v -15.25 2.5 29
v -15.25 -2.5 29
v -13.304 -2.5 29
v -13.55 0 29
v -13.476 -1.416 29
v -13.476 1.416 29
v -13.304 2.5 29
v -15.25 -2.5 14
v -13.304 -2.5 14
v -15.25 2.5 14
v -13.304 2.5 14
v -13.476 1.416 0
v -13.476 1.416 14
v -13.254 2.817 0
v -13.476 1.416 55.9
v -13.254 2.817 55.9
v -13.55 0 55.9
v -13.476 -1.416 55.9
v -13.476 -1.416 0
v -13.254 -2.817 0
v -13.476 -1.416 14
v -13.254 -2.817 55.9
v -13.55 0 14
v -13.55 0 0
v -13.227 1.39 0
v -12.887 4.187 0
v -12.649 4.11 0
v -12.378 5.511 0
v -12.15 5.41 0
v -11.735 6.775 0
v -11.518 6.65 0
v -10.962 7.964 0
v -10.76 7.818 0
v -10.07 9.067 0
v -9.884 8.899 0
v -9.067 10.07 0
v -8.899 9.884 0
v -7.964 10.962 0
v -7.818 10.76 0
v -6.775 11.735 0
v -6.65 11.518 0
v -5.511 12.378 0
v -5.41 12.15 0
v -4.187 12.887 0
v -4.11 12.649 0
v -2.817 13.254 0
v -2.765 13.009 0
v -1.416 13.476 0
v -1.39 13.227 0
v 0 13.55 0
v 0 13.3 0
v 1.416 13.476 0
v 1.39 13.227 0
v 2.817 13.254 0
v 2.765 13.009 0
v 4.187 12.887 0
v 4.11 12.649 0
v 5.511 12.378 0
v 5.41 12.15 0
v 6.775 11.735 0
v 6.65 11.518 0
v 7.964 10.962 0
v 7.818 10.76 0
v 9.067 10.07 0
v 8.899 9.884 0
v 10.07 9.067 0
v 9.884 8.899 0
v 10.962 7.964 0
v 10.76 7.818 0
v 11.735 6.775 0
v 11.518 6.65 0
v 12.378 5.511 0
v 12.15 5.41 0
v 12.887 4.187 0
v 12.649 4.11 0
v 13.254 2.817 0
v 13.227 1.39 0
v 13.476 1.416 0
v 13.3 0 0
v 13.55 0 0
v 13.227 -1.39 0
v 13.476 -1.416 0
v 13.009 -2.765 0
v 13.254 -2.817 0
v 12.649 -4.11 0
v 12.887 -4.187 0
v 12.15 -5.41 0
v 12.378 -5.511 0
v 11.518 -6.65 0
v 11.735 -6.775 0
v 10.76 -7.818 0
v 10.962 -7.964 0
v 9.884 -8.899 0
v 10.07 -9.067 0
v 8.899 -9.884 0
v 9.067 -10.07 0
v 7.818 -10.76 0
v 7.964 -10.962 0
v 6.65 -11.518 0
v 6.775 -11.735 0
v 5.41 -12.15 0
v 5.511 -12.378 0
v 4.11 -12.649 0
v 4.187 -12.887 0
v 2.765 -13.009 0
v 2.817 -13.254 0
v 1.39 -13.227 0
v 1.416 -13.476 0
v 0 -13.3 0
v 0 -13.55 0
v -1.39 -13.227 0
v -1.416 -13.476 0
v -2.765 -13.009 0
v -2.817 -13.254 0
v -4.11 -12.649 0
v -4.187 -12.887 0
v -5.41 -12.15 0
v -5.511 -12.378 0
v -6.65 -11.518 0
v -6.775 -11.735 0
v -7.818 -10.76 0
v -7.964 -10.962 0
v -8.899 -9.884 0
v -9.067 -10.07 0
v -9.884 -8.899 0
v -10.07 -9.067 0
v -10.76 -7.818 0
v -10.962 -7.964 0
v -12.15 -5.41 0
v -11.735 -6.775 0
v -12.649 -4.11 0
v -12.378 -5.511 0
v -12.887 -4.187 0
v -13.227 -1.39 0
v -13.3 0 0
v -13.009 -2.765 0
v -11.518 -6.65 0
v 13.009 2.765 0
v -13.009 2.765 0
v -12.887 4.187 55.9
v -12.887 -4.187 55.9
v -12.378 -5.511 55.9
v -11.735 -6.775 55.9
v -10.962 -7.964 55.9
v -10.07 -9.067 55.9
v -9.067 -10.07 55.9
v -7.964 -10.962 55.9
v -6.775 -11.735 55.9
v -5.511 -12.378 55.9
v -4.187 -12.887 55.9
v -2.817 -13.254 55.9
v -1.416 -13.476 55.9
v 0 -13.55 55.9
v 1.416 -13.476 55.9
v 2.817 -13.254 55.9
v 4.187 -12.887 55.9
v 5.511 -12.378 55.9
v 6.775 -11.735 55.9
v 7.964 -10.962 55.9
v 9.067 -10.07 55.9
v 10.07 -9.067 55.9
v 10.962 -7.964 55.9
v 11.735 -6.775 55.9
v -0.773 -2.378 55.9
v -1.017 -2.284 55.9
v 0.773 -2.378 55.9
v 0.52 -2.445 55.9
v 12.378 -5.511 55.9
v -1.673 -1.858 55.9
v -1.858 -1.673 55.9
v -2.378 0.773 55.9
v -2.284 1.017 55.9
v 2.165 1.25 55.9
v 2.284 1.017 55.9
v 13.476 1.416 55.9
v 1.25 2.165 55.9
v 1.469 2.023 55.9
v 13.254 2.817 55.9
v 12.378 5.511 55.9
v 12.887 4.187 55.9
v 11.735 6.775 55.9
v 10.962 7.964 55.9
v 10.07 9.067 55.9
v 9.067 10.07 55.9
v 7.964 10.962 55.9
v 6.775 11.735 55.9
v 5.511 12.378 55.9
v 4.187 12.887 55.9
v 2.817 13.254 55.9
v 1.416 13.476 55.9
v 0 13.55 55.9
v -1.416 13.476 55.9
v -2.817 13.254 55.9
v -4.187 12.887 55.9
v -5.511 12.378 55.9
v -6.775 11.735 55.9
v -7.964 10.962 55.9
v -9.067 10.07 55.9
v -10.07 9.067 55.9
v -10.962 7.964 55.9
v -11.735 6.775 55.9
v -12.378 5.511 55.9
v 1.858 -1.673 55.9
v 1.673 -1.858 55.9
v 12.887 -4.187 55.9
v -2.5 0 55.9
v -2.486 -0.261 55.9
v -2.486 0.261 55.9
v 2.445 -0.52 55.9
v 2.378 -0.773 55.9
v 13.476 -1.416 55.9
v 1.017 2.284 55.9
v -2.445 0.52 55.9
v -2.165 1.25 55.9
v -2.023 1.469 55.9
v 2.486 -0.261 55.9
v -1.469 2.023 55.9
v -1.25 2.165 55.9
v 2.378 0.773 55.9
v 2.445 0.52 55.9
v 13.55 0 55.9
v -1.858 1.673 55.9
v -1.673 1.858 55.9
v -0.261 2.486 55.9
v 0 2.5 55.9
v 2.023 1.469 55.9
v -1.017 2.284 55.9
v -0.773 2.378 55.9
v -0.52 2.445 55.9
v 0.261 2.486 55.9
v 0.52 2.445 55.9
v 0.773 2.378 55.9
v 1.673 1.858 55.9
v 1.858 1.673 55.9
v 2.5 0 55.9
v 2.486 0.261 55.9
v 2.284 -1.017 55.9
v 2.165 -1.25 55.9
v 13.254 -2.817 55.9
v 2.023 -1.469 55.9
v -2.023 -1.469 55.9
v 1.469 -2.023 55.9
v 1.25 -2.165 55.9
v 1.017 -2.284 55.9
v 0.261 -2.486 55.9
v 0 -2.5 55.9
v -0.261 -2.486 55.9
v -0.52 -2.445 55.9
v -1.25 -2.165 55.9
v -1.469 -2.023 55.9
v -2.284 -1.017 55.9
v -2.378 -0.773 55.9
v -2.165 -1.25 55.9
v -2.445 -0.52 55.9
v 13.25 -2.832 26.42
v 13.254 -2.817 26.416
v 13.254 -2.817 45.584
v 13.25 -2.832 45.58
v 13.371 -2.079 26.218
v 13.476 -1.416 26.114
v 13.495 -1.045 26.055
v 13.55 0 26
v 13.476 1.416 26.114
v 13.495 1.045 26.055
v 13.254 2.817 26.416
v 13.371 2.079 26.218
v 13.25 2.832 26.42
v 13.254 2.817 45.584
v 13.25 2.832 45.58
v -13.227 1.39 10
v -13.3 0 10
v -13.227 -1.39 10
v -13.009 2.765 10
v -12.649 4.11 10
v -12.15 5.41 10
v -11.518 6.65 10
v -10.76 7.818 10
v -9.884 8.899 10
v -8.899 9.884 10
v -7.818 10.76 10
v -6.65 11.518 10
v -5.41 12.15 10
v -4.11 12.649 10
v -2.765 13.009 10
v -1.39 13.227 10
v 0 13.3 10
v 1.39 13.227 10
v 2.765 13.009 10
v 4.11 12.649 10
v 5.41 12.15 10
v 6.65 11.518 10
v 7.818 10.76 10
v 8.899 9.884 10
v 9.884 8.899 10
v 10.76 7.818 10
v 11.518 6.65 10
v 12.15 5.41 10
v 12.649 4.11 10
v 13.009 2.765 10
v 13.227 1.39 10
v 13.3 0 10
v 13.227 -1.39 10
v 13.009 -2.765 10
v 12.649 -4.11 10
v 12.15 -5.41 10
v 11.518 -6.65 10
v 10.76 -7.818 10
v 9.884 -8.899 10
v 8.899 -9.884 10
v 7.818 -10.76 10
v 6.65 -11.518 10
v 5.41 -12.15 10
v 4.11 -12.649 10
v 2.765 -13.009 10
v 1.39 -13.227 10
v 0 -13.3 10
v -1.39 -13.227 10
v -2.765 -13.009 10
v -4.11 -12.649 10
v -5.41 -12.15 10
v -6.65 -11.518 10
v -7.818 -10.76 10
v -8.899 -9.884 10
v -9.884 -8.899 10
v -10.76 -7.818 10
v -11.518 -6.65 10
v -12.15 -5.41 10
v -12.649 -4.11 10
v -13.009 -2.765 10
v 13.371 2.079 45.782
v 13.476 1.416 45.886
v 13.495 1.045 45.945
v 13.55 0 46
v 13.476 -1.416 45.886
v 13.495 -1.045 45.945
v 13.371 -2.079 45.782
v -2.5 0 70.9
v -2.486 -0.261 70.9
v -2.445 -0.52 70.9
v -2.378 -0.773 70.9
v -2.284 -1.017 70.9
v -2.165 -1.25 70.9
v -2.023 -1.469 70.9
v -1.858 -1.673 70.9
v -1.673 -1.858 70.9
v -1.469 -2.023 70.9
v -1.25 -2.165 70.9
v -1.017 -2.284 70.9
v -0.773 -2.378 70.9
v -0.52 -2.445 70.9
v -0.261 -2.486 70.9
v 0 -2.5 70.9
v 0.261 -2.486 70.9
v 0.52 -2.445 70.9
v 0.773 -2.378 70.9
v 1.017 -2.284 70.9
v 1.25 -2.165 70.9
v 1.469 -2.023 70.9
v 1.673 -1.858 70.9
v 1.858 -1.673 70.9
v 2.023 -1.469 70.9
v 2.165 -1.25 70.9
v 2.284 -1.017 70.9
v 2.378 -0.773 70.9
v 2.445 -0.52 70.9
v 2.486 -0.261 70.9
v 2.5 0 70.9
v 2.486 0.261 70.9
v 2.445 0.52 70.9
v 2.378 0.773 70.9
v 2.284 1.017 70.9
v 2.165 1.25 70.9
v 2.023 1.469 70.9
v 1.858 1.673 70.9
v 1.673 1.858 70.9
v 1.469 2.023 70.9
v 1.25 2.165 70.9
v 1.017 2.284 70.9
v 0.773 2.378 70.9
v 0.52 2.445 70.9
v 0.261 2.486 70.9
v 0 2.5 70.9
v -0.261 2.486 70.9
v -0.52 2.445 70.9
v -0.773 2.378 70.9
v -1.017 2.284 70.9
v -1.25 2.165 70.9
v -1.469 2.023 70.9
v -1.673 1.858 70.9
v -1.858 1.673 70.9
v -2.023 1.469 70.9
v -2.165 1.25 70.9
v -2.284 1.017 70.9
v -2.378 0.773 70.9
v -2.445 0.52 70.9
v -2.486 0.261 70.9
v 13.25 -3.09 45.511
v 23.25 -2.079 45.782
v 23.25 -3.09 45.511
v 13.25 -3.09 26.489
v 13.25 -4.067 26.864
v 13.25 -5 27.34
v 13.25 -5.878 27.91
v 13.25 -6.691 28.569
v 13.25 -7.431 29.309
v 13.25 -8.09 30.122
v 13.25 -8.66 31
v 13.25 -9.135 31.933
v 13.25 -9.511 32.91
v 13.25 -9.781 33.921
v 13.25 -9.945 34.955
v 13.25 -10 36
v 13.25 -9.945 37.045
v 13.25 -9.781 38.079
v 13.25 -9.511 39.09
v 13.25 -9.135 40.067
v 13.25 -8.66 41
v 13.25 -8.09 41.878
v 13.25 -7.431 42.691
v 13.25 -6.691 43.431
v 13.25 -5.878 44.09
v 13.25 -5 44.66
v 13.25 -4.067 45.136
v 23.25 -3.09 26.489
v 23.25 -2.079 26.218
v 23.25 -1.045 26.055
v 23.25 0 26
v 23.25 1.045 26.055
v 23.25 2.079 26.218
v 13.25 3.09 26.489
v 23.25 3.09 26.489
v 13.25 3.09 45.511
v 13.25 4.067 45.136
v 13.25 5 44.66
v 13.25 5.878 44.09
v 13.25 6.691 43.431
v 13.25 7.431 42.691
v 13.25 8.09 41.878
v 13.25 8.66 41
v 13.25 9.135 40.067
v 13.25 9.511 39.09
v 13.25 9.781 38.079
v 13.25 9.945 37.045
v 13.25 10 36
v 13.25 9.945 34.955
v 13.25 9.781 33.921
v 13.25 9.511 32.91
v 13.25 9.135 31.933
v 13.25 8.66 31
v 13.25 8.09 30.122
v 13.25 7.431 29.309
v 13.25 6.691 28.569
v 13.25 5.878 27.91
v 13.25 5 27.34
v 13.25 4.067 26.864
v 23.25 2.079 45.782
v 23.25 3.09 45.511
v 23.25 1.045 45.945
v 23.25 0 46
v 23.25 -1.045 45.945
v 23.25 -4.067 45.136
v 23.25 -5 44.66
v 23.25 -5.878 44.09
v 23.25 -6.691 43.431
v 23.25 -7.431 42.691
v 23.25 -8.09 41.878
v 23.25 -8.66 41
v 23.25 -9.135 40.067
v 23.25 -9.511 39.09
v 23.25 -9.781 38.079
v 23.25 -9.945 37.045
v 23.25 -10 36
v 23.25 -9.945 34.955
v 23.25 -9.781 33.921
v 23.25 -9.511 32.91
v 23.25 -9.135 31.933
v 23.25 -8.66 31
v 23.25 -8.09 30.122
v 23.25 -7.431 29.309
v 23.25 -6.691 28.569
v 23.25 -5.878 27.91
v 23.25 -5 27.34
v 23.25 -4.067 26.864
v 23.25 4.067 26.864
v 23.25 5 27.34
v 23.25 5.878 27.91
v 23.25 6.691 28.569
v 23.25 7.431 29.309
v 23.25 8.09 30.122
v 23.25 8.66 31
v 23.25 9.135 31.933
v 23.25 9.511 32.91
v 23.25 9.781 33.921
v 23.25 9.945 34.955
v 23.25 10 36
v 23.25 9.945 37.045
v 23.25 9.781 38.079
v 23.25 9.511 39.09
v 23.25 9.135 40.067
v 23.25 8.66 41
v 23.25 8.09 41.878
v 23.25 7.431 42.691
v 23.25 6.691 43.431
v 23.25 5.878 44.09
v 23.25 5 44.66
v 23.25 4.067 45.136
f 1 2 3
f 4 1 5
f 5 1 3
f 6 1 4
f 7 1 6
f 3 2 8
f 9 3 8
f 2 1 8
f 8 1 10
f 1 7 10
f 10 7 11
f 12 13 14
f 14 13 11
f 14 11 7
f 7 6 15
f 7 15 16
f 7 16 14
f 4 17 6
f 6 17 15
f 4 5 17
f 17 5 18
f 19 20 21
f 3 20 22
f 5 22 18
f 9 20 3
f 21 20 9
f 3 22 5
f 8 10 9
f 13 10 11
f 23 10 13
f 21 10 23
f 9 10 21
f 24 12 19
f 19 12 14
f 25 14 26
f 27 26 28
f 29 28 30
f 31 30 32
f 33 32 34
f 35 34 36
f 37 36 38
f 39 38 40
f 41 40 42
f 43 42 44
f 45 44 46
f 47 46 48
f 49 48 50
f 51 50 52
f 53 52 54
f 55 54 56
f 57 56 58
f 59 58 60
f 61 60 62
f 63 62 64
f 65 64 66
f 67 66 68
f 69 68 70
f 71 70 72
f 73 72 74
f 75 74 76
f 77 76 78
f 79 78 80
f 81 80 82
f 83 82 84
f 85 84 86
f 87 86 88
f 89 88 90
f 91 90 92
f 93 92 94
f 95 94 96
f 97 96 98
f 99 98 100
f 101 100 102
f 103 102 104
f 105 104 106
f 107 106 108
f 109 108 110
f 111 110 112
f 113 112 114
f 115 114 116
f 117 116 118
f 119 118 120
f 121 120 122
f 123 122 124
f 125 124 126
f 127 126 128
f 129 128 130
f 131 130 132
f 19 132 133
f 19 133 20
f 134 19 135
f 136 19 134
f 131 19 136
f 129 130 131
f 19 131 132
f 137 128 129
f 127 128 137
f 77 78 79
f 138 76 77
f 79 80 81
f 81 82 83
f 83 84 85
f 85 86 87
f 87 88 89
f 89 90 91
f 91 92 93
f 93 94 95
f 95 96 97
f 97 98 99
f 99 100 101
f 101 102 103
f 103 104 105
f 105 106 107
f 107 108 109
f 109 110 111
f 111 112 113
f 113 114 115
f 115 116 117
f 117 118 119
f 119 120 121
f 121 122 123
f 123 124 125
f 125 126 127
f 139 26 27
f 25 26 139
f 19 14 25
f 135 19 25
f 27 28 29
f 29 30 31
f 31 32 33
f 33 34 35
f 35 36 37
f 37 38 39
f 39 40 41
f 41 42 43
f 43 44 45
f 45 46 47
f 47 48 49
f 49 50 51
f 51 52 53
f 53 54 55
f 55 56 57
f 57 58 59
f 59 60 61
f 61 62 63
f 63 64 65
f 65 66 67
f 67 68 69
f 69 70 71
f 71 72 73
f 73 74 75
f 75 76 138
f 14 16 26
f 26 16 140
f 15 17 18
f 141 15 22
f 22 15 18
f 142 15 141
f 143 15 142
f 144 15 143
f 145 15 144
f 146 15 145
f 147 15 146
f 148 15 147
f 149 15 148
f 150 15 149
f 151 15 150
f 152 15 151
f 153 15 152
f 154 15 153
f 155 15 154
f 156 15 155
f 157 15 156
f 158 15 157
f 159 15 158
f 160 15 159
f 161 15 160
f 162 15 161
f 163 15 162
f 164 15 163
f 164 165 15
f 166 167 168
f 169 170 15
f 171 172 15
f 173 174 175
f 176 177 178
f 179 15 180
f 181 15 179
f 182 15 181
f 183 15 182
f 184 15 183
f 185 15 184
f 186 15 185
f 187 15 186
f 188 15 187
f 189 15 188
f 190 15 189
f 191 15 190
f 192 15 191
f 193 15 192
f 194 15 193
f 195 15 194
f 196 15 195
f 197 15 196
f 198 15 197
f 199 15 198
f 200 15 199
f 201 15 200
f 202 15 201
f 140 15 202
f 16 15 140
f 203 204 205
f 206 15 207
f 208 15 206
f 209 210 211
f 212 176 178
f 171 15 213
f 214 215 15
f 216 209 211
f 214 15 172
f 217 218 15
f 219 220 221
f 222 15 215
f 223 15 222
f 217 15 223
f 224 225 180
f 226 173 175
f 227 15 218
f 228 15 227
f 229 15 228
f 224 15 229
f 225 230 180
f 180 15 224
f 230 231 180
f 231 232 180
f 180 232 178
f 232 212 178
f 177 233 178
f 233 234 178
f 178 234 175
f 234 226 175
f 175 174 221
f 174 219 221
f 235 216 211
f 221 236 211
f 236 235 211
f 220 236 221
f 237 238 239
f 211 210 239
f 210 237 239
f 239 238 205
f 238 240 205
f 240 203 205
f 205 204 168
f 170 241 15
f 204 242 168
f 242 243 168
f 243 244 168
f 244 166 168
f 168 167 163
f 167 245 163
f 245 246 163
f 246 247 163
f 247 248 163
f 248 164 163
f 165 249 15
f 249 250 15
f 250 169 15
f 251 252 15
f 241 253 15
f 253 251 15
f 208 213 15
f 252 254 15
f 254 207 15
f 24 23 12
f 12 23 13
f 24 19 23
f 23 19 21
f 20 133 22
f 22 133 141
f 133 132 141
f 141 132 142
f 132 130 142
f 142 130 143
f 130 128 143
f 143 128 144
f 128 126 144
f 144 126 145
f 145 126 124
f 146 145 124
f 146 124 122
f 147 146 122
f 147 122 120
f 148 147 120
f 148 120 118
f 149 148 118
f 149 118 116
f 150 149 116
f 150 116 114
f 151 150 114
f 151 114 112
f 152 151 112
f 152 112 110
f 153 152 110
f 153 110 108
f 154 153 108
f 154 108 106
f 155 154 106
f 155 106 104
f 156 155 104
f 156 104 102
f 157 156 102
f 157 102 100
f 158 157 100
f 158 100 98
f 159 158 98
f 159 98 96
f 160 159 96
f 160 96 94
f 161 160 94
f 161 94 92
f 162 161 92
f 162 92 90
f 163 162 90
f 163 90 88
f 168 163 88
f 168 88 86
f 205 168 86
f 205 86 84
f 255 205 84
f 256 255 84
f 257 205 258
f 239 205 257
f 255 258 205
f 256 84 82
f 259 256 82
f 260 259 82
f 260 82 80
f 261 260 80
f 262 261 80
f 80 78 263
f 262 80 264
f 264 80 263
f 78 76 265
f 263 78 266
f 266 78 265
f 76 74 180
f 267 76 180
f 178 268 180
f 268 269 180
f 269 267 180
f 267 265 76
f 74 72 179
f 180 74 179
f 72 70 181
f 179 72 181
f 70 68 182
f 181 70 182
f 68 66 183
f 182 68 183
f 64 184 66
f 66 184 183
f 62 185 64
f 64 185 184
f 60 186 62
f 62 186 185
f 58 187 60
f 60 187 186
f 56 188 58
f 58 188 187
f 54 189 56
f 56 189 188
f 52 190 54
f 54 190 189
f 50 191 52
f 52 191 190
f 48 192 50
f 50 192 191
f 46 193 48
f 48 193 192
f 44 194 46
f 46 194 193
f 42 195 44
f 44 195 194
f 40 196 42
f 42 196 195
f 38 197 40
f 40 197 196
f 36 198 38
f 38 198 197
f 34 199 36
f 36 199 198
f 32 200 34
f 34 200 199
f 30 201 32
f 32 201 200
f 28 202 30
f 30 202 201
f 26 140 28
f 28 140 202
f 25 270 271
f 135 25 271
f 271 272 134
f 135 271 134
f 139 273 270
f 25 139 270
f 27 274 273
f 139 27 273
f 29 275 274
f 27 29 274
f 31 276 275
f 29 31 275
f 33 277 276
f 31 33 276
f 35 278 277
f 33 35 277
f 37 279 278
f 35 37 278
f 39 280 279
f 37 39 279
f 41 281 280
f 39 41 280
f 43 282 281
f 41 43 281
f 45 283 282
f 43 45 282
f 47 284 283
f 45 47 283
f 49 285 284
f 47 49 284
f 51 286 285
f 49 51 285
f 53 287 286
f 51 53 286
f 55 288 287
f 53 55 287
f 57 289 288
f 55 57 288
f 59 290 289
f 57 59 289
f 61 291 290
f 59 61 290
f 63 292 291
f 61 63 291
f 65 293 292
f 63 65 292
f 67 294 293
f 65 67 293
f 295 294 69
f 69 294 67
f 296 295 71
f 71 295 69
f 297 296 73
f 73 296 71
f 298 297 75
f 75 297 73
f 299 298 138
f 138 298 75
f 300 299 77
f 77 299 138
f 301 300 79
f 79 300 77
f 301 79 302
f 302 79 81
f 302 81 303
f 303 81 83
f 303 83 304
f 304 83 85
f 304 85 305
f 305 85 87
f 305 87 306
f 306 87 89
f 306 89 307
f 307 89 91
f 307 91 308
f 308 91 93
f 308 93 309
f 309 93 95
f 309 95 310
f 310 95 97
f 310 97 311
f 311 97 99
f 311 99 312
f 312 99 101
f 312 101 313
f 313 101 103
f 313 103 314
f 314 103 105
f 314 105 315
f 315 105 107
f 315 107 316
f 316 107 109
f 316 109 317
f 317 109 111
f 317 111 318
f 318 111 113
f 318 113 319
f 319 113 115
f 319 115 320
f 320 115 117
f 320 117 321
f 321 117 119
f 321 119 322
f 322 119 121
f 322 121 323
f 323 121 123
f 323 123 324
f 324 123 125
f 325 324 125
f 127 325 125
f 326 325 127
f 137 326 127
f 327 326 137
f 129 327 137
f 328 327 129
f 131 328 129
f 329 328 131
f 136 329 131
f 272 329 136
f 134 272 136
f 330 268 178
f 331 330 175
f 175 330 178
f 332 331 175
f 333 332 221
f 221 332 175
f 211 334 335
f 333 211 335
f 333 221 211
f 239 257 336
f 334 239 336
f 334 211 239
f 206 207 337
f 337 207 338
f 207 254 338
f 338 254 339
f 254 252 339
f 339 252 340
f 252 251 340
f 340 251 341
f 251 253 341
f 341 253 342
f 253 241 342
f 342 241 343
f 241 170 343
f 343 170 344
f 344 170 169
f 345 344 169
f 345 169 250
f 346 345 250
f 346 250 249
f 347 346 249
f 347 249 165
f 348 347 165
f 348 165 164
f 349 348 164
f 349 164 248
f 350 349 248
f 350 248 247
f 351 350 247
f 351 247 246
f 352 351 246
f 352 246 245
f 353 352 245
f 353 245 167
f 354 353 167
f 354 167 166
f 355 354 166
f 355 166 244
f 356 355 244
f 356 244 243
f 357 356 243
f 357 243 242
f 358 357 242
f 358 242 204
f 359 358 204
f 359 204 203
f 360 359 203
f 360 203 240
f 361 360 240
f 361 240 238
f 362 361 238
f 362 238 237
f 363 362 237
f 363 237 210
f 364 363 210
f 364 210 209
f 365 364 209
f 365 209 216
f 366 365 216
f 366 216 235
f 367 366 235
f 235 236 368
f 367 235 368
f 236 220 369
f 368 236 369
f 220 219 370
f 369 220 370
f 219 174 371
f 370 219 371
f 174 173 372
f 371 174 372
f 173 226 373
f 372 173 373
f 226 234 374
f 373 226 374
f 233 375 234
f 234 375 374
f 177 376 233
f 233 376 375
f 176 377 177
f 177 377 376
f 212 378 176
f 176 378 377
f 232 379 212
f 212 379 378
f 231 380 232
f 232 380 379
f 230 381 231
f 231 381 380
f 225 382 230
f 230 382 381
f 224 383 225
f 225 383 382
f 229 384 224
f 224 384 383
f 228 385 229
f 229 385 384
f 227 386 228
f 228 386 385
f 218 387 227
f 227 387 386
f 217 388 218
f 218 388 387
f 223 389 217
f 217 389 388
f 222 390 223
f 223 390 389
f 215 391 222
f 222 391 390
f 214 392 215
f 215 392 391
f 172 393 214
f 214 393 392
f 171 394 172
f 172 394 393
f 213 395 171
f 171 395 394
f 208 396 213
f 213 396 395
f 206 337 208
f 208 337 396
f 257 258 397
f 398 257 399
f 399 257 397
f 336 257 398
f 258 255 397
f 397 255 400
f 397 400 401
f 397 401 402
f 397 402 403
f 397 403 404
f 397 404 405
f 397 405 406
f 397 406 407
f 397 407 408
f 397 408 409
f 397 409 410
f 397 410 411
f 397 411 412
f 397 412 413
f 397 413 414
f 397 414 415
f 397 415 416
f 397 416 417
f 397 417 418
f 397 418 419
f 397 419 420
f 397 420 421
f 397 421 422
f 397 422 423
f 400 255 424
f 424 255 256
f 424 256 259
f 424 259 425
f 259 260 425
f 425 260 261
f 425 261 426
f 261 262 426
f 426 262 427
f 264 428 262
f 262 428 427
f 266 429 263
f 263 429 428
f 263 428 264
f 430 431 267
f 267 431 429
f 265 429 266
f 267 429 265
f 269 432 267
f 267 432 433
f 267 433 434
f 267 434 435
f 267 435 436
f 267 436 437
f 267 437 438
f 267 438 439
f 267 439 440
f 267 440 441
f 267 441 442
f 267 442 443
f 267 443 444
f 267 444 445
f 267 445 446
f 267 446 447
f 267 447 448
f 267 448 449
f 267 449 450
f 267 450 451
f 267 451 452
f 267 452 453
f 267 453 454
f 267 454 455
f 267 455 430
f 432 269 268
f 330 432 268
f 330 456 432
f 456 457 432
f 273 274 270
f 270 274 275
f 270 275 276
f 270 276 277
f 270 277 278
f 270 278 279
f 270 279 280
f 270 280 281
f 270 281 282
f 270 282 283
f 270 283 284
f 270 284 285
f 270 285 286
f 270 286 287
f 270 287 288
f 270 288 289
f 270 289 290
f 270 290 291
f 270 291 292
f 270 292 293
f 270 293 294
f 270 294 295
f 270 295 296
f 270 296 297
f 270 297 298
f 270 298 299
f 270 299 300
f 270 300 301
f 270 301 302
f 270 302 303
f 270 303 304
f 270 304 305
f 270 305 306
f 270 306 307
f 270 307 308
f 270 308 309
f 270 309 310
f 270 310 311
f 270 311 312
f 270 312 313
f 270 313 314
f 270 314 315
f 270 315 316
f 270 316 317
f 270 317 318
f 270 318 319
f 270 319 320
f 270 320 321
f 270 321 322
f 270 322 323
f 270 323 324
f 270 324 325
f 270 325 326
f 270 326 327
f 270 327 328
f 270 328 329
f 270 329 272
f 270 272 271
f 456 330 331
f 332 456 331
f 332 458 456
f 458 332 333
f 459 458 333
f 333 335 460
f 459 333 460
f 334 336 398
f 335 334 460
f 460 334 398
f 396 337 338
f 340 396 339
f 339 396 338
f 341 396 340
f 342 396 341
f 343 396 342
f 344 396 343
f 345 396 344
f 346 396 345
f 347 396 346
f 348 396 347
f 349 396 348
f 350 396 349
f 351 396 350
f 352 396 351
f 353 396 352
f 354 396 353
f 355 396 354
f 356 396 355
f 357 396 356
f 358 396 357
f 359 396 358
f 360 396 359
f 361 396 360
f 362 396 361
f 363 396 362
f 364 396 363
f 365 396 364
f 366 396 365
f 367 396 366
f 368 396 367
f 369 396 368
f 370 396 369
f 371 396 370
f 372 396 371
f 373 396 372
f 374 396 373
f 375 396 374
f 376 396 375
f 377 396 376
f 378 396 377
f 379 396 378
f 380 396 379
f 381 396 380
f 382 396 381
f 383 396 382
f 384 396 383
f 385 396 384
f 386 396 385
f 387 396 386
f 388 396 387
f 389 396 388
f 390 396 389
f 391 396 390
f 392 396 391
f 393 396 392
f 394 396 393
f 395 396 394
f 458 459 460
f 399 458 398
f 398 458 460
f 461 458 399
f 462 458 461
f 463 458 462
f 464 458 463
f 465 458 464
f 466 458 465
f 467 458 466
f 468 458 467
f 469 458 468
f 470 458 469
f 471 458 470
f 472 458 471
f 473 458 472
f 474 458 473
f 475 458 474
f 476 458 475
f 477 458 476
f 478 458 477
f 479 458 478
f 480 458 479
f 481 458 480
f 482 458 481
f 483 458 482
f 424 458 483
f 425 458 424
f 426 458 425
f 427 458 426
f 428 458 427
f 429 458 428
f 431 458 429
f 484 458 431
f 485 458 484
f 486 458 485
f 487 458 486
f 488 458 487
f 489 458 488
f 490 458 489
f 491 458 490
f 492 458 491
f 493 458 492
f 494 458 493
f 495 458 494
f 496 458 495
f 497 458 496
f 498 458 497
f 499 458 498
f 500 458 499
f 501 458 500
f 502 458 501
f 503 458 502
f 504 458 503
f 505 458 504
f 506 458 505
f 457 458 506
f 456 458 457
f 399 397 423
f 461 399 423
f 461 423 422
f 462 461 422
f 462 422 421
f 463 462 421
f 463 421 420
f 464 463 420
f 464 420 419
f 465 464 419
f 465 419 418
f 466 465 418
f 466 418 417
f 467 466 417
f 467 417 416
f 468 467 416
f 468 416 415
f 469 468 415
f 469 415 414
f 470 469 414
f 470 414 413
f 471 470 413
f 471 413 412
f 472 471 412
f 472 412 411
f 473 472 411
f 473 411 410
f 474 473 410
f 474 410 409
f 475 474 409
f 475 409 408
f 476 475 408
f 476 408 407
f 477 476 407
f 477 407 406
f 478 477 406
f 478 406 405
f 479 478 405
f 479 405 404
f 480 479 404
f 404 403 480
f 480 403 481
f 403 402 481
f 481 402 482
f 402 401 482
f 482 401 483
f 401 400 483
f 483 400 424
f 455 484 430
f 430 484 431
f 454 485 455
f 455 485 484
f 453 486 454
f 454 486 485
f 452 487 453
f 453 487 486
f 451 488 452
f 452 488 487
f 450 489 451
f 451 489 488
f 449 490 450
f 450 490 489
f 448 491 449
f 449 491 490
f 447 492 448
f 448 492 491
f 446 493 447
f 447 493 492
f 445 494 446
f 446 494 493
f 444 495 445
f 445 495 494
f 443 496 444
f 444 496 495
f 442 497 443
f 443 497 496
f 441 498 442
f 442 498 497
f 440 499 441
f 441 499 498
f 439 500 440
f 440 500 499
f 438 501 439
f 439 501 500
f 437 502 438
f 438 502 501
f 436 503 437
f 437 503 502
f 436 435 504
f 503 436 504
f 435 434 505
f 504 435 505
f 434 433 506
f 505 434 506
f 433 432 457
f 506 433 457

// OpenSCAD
/*
 * Microsoft LifeCam Cinema
 *
 * Copyright 2012 b@Zi.iS
 *
 * License CC BY 3.0
 */
$fn=60;

camera();

module camera() {
	color([.75,.75,.75]) {
		difference() {
			cylinder(
				r = 27.1/2,
				h = 10
			);
			translate([
				0,
				0,
				-1
			]) {
				cylinder(
					r = 26.6/2,
					h = 45.9 + 2
				);
			}
		}
	}
	translate([
		0,
		0,
		10
	]) {
		color([0,0,0]) {
			cylinder(
				r = 27.1/2,
				h =45.9
			);
		}
	}

	//Cable
	translate([
		0,
		0,
		55.9
	]) {
		color([0,0,0]) {
			cylinder(
				r = 5/2,
				h = 15
			);
		}
	}

	//Mount
	color([0,0,0]) {
		translate([
			26.5/2,
			0,
			36
		]) {
			rotate([
				0,
				90,
				0
			]) {
				cylinder(
					r = 20/2,
					h =10
				);
			}
		}
	}

    //Mic
    color([.75,.75,.75]) {
        translate([
            -26.5/2 - 2,
            -2.5,
            14+15
        ]) {
            rotate([
                0,
                90,
                0
            ]) {
                cube([
                    15,
                    5,
                    3
                ]);
            }
        }
    }
}
	
